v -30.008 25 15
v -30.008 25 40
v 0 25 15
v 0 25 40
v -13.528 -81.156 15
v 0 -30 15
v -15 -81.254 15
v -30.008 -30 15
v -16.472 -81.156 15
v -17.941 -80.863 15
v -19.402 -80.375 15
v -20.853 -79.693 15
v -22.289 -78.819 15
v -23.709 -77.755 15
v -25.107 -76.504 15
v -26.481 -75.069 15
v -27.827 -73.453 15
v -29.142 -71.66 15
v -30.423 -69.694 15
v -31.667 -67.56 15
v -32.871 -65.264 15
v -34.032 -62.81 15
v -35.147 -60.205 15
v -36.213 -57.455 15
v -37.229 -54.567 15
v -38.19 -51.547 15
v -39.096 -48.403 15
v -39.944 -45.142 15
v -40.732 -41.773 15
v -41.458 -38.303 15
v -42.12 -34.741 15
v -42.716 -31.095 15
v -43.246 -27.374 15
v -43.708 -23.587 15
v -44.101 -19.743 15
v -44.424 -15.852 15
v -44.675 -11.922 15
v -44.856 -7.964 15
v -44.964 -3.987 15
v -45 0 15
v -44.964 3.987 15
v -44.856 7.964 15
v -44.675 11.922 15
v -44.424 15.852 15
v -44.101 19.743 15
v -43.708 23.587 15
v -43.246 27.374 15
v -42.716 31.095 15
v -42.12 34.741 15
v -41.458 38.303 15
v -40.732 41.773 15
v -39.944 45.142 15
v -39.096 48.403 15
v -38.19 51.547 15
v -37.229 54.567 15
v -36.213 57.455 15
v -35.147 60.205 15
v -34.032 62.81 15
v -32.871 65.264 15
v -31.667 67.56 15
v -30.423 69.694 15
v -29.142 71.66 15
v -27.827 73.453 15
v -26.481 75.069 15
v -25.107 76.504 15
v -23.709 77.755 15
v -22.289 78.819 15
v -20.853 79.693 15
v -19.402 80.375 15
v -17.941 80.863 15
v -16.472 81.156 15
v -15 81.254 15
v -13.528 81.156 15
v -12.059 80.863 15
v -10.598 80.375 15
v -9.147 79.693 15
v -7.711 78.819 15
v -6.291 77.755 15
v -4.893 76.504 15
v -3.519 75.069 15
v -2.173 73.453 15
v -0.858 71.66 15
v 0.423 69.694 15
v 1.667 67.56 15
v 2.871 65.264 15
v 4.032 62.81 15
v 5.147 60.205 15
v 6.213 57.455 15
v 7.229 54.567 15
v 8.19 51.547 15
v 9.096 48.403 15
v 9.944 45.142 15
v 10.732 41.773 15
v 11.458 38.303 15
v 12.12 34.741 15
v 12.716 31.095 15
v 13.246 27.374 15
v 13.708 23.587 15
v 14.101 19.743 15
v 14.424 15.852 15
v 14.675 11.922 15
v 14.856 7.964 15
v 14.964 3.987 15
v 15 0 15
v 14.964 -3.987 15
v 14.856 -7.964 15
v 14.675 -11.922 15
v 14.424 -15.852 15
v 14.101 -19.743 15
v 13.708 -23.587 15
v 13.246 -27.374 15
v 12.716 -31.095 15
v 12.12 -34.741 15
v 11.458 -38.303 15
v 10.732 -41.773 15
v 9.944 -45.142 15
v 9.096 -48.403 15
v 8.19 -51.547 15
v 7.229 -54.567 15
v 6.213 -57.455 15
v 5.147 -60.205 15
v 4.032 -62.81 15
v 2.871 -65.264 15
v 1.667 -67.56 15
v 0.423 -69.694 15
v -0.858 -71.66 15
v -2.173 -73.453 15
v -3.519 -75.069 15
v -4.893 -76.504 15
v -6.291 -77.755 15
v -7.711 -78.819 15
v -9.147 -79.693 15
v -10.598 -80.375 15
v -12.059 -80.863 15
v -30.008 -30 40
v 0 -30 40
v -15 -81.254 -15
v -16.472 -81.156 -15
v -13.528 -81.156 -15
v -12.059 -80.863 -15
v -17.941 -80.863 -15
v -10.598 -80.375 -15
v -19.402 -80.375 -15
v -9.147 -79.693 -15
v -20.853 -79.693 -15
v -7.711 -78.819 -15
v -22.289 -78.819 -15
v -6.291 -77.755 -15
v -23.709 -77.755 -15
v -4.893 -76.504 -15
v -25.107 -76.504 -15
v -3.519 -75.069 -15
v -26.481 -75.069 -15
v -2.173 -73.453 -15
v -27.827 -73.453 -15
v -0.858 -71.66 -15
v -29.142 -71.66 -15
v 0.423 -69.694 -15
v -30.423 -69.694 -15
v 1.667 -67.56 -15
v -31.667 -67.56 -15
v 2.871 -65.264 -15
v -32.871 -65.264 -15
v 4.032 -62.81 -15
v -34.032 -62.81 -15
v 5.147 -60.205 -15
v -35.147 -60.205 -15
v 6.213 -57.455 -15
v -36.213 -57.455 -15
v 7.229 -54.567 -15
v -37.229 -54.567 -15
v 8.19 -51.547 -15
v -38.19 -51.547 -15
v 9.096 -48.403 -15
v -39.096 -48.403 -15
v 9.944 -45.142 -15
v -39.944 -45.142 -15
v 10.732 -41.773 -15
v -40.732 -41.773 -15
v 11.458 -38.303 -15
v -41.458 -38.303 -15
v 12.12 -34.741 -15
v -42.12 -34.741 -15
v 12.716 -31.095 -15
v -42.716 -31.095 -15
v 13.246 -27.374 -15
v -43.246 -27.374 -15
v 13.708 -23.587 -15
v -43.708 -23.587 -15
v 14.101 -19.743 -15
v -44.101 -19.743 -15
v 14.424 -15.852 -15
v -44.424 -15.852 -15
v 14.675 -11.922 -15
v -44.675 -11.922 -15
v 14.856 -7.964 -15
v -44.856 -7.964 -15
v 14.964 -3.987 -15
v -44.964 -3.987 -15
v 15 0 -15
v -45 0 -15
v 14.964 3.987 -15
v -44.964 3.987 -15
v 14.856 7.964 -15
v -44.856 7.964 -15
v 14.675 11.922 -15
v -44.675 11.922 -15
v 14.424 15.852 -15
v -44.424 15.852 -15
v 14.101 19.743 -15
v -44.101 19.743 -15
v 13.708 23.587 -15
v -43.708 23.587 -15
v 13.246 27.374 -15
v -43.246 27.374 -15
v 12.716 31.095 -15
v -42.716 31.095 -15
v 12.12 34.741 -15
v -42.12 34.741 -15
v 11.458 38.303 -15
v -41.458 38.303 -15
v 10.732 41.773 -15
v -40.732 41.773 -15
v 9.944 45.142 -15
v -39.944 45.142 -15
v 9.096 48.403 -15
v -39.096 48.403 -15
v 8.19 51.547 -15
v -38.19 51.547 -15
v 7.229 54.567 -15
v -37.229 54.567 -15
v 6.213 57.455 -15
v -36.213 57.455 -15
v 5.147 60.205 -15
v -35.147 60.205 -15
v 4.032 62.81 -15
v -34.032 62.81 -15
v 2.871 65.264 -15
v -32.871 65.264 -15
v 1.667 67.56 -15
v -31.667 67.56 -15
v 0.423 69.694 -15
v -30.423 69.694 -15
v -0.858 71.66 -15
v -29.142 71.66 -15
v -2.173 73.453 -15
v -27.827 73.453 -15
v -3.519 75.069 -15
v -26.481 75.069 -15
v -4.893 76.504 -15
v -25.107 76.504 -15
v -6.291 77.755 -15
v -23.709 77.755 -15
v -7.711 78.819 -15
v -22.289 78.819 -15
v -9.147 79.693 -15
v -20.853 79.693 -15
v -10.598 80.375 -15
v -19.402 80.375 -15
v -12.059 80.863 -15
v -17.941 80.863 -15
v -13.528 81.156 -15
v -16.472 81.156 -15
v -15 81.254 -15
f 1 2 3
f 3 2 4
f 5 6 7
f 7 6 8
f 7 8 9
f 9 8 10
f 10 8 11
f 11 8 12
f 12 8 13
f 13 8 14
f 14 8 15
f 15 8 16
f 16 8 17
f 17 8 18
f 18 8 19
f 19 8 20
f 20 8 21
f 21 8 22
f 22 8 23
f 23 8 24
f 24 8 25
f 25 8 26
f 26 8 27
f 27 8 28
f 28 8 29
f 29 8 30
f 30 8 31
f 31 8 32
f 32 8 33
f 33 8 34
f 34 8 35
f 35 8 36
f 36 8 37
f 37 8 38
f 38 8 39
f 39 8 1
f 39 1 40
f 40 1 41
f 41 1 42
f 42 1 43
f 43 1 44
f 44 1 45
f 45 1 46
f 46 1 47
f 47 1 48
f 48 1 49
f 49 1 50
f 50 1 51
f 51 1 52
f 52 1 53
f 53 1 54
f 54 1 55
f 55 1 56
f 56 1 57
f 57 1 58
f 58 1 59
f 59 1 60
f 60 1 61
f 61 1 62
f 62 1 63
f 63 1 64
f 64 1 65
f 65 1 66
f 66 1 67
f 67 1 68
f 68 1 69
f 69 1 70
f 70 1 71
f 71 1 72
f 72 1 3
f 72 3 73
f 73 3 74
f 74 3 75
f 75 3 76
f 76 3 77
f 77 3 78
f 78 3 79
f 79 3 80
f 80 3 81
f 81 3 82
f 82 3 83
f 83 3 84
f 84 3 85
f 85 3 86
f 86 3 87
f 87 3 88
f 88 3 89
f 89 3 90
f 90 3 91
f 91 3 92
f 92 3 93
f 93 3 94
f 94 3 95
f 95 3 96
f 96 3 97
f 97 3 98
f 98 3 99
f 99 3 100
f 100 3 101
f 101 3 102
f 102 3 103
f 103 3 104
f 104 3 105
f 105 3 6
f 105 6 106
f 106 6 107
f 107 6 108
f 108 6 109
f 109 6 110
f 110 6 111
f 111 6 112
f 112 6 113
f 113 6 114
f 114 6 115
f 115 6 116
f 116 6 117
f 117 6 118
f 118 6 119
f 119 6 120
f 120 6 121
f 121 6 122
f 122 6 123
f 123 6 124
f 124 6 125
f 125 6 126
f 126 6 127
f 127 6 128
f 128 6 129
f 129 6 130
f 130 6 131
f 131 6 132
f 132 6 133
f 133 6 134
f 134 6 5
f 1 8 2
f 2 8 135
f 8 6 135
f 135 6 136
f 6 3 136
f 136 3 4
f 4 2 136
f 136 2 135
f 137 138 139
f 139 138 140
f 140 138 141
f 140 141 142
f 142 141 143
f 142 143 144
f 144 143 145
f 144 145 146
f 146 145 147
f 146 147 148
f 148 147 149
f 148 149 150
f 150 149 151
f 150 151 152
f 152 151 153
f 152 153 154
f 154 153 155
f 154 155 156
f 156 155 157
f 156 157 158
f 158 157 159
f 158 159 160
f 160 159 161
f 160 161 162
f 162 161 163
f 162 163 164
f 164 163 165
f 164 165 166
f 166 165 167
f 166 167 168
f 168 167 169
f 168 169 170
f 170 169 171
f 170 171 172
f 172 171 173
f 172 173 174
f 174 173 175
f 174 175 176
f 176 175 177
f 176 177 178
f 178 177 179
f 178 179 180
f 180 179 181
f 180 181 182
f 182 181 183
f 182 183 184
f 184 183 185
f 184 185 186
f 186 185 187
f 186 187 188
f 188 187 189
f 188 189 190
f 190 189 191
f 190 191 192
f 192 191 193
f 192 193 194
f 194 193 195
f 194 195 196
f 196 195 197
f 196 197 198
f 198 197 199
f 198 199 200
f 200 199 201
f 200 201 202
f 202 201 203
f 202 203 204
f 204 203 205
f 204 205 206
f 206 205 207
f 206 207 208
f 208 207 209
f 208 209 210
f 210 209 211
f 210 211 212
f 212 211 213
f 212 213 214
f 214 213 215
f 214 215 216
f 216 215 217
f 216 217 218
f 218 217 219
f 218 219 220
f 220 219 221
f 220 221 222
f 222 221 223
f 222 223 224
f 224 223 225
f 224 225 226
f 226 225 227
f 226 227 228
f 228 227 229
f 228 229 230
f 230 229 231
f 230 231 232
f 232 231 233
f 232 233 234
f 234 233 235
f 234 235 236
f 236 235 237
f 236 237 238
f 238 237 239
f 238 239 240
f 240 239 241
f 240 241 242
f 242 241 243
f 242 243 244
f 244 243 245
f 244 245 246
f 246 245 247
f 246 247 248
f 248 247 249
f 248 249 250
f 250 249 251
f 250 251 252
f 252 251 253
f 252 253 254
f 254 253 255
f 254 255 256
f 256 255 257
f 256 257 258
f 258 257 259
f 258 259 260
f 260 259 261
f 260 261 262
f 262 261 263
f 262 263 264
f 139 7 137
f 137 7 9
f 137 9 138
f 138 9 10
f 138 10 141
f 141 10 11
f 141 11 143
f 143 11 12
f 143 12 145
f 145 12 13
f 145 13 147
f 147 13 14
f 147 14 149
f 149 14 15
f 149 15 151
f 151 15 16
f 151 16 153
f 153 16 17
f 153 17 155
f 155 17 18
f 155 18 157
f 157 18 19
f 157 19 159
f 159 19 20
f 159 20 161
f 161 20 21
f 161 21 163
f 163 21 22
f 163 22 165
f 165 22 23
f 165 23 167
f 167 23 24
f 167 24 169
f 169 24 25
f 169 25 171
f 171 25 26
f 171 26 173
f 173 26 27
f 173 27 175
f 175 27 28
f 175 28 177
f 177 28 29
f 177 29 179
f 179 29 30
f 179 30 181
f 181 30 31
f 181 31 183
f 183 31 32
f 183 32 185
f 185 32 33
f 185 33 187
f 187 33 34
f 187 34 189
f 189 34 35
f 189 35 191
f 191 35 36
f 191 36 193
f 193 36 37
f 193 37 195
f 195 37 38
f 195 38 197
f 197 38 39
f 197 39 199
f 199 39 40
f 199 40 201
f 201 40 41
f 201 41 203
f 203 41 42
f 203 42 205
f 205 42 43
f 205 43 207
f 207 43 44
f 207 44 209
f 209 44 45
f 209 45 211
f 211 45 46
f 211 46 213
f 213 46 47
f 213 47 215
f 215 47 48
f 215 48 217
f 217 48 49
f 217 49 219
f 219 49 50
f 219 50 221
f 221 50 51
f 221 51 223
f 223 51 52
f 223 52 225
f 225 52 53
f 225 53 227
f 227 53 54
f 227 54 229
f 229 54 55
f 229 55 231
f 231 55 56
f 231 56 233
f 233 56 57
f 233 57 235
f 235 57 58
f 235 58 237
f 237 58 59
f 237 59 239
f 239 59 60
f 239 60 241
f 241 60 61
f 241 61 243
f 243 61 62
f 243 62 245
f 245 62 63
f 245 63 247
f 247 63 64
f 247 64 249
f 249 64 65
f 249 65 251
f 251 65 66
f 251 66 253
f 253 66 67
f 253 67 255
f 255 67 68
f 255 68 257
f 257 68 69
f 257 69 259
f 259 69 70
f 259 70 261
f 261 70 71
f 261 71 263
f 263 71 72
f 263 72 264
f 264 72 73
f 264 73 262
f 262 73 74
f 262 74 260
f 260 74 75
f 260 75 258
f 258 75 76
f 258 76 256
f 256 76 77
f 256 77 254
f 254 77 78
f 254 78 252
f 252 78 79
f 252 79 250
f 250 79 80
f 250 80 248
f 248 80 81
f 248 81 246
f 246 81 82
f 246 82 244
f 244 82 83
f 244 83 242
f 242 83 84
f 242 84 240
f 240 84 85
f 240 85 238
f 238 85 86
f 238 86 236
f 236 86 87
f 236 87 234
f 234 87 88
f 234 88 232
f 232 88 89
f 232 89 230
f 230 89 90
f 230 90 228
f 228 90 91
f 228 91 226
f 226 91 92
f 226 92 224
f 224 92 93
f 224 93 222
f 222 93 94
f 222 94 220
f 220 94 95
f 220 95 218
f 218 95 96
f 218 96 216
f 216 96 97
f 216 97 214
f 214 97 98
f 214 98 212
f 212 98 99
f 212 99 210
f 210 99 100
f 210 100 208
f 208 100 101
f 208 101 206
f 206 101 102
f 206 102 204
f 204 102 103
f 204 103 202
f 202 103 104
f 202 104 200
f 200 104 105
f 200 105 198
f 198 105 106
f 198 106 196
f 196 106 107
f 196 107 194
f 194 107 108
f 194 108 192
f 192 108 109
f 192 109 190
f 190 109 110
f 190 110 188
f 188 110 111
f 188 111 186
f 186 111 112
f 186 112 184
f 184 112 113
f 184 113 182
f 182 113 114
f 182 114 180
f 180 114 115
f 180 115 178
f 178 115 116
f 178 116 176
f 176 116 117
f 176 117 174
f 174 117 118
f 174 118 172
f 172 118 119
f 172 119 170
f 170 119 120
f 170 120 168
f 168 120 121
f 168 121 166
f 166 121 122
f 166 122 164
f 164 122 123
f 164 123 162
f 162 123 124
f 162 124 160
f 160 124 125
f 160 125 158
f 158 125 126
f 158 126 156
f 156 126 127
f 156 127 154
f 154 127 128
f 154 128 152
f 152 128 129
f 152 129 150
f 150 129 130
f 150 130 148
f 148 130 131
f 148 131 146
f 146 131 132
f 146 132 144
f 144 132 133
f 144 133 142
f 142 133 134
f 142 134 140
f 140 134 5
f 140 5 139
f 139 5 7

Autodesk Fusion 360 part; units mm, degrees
sketch "Sketch1" plane through (0, 0, 0) normal (0, 0, 1) x (1, 0, 0)
  ellipse E0 centre (-15, 0) end of major axis (15, 0) minor radius 81.2541
  line L0 (-45, 0) -> (15, 0) construction
  line L1 (-15, -81.2541) -> (-15, 81.2541) construction
extrude "Extrude1" add sketch "Sketch1" along normal mid plane 30 makes body 1
sketch "Sketch2" plane through (0, 0, 0) normal (0, 0, 1) x (1, 0, 0)
  line L0 (0, 0) -> (-30.0078, 0)
  line L1 (-30.0078, 0) -> (-30.0078, -30)
  line L2 (-30.0078, -30) -> (0, -30)
  line L3 (0, -30) -> (0, 0)
  dimension "d3" = 30
extrude "Extrude2" add sketch "Sketch2" along normal blind 40 separate body makes body 2
extrude "Extrude3" add 1 faces at (-10.0026, 0, 13.3333) along direction (0, 1, 0) blind 25 on bodies 2 bodies 1 2
